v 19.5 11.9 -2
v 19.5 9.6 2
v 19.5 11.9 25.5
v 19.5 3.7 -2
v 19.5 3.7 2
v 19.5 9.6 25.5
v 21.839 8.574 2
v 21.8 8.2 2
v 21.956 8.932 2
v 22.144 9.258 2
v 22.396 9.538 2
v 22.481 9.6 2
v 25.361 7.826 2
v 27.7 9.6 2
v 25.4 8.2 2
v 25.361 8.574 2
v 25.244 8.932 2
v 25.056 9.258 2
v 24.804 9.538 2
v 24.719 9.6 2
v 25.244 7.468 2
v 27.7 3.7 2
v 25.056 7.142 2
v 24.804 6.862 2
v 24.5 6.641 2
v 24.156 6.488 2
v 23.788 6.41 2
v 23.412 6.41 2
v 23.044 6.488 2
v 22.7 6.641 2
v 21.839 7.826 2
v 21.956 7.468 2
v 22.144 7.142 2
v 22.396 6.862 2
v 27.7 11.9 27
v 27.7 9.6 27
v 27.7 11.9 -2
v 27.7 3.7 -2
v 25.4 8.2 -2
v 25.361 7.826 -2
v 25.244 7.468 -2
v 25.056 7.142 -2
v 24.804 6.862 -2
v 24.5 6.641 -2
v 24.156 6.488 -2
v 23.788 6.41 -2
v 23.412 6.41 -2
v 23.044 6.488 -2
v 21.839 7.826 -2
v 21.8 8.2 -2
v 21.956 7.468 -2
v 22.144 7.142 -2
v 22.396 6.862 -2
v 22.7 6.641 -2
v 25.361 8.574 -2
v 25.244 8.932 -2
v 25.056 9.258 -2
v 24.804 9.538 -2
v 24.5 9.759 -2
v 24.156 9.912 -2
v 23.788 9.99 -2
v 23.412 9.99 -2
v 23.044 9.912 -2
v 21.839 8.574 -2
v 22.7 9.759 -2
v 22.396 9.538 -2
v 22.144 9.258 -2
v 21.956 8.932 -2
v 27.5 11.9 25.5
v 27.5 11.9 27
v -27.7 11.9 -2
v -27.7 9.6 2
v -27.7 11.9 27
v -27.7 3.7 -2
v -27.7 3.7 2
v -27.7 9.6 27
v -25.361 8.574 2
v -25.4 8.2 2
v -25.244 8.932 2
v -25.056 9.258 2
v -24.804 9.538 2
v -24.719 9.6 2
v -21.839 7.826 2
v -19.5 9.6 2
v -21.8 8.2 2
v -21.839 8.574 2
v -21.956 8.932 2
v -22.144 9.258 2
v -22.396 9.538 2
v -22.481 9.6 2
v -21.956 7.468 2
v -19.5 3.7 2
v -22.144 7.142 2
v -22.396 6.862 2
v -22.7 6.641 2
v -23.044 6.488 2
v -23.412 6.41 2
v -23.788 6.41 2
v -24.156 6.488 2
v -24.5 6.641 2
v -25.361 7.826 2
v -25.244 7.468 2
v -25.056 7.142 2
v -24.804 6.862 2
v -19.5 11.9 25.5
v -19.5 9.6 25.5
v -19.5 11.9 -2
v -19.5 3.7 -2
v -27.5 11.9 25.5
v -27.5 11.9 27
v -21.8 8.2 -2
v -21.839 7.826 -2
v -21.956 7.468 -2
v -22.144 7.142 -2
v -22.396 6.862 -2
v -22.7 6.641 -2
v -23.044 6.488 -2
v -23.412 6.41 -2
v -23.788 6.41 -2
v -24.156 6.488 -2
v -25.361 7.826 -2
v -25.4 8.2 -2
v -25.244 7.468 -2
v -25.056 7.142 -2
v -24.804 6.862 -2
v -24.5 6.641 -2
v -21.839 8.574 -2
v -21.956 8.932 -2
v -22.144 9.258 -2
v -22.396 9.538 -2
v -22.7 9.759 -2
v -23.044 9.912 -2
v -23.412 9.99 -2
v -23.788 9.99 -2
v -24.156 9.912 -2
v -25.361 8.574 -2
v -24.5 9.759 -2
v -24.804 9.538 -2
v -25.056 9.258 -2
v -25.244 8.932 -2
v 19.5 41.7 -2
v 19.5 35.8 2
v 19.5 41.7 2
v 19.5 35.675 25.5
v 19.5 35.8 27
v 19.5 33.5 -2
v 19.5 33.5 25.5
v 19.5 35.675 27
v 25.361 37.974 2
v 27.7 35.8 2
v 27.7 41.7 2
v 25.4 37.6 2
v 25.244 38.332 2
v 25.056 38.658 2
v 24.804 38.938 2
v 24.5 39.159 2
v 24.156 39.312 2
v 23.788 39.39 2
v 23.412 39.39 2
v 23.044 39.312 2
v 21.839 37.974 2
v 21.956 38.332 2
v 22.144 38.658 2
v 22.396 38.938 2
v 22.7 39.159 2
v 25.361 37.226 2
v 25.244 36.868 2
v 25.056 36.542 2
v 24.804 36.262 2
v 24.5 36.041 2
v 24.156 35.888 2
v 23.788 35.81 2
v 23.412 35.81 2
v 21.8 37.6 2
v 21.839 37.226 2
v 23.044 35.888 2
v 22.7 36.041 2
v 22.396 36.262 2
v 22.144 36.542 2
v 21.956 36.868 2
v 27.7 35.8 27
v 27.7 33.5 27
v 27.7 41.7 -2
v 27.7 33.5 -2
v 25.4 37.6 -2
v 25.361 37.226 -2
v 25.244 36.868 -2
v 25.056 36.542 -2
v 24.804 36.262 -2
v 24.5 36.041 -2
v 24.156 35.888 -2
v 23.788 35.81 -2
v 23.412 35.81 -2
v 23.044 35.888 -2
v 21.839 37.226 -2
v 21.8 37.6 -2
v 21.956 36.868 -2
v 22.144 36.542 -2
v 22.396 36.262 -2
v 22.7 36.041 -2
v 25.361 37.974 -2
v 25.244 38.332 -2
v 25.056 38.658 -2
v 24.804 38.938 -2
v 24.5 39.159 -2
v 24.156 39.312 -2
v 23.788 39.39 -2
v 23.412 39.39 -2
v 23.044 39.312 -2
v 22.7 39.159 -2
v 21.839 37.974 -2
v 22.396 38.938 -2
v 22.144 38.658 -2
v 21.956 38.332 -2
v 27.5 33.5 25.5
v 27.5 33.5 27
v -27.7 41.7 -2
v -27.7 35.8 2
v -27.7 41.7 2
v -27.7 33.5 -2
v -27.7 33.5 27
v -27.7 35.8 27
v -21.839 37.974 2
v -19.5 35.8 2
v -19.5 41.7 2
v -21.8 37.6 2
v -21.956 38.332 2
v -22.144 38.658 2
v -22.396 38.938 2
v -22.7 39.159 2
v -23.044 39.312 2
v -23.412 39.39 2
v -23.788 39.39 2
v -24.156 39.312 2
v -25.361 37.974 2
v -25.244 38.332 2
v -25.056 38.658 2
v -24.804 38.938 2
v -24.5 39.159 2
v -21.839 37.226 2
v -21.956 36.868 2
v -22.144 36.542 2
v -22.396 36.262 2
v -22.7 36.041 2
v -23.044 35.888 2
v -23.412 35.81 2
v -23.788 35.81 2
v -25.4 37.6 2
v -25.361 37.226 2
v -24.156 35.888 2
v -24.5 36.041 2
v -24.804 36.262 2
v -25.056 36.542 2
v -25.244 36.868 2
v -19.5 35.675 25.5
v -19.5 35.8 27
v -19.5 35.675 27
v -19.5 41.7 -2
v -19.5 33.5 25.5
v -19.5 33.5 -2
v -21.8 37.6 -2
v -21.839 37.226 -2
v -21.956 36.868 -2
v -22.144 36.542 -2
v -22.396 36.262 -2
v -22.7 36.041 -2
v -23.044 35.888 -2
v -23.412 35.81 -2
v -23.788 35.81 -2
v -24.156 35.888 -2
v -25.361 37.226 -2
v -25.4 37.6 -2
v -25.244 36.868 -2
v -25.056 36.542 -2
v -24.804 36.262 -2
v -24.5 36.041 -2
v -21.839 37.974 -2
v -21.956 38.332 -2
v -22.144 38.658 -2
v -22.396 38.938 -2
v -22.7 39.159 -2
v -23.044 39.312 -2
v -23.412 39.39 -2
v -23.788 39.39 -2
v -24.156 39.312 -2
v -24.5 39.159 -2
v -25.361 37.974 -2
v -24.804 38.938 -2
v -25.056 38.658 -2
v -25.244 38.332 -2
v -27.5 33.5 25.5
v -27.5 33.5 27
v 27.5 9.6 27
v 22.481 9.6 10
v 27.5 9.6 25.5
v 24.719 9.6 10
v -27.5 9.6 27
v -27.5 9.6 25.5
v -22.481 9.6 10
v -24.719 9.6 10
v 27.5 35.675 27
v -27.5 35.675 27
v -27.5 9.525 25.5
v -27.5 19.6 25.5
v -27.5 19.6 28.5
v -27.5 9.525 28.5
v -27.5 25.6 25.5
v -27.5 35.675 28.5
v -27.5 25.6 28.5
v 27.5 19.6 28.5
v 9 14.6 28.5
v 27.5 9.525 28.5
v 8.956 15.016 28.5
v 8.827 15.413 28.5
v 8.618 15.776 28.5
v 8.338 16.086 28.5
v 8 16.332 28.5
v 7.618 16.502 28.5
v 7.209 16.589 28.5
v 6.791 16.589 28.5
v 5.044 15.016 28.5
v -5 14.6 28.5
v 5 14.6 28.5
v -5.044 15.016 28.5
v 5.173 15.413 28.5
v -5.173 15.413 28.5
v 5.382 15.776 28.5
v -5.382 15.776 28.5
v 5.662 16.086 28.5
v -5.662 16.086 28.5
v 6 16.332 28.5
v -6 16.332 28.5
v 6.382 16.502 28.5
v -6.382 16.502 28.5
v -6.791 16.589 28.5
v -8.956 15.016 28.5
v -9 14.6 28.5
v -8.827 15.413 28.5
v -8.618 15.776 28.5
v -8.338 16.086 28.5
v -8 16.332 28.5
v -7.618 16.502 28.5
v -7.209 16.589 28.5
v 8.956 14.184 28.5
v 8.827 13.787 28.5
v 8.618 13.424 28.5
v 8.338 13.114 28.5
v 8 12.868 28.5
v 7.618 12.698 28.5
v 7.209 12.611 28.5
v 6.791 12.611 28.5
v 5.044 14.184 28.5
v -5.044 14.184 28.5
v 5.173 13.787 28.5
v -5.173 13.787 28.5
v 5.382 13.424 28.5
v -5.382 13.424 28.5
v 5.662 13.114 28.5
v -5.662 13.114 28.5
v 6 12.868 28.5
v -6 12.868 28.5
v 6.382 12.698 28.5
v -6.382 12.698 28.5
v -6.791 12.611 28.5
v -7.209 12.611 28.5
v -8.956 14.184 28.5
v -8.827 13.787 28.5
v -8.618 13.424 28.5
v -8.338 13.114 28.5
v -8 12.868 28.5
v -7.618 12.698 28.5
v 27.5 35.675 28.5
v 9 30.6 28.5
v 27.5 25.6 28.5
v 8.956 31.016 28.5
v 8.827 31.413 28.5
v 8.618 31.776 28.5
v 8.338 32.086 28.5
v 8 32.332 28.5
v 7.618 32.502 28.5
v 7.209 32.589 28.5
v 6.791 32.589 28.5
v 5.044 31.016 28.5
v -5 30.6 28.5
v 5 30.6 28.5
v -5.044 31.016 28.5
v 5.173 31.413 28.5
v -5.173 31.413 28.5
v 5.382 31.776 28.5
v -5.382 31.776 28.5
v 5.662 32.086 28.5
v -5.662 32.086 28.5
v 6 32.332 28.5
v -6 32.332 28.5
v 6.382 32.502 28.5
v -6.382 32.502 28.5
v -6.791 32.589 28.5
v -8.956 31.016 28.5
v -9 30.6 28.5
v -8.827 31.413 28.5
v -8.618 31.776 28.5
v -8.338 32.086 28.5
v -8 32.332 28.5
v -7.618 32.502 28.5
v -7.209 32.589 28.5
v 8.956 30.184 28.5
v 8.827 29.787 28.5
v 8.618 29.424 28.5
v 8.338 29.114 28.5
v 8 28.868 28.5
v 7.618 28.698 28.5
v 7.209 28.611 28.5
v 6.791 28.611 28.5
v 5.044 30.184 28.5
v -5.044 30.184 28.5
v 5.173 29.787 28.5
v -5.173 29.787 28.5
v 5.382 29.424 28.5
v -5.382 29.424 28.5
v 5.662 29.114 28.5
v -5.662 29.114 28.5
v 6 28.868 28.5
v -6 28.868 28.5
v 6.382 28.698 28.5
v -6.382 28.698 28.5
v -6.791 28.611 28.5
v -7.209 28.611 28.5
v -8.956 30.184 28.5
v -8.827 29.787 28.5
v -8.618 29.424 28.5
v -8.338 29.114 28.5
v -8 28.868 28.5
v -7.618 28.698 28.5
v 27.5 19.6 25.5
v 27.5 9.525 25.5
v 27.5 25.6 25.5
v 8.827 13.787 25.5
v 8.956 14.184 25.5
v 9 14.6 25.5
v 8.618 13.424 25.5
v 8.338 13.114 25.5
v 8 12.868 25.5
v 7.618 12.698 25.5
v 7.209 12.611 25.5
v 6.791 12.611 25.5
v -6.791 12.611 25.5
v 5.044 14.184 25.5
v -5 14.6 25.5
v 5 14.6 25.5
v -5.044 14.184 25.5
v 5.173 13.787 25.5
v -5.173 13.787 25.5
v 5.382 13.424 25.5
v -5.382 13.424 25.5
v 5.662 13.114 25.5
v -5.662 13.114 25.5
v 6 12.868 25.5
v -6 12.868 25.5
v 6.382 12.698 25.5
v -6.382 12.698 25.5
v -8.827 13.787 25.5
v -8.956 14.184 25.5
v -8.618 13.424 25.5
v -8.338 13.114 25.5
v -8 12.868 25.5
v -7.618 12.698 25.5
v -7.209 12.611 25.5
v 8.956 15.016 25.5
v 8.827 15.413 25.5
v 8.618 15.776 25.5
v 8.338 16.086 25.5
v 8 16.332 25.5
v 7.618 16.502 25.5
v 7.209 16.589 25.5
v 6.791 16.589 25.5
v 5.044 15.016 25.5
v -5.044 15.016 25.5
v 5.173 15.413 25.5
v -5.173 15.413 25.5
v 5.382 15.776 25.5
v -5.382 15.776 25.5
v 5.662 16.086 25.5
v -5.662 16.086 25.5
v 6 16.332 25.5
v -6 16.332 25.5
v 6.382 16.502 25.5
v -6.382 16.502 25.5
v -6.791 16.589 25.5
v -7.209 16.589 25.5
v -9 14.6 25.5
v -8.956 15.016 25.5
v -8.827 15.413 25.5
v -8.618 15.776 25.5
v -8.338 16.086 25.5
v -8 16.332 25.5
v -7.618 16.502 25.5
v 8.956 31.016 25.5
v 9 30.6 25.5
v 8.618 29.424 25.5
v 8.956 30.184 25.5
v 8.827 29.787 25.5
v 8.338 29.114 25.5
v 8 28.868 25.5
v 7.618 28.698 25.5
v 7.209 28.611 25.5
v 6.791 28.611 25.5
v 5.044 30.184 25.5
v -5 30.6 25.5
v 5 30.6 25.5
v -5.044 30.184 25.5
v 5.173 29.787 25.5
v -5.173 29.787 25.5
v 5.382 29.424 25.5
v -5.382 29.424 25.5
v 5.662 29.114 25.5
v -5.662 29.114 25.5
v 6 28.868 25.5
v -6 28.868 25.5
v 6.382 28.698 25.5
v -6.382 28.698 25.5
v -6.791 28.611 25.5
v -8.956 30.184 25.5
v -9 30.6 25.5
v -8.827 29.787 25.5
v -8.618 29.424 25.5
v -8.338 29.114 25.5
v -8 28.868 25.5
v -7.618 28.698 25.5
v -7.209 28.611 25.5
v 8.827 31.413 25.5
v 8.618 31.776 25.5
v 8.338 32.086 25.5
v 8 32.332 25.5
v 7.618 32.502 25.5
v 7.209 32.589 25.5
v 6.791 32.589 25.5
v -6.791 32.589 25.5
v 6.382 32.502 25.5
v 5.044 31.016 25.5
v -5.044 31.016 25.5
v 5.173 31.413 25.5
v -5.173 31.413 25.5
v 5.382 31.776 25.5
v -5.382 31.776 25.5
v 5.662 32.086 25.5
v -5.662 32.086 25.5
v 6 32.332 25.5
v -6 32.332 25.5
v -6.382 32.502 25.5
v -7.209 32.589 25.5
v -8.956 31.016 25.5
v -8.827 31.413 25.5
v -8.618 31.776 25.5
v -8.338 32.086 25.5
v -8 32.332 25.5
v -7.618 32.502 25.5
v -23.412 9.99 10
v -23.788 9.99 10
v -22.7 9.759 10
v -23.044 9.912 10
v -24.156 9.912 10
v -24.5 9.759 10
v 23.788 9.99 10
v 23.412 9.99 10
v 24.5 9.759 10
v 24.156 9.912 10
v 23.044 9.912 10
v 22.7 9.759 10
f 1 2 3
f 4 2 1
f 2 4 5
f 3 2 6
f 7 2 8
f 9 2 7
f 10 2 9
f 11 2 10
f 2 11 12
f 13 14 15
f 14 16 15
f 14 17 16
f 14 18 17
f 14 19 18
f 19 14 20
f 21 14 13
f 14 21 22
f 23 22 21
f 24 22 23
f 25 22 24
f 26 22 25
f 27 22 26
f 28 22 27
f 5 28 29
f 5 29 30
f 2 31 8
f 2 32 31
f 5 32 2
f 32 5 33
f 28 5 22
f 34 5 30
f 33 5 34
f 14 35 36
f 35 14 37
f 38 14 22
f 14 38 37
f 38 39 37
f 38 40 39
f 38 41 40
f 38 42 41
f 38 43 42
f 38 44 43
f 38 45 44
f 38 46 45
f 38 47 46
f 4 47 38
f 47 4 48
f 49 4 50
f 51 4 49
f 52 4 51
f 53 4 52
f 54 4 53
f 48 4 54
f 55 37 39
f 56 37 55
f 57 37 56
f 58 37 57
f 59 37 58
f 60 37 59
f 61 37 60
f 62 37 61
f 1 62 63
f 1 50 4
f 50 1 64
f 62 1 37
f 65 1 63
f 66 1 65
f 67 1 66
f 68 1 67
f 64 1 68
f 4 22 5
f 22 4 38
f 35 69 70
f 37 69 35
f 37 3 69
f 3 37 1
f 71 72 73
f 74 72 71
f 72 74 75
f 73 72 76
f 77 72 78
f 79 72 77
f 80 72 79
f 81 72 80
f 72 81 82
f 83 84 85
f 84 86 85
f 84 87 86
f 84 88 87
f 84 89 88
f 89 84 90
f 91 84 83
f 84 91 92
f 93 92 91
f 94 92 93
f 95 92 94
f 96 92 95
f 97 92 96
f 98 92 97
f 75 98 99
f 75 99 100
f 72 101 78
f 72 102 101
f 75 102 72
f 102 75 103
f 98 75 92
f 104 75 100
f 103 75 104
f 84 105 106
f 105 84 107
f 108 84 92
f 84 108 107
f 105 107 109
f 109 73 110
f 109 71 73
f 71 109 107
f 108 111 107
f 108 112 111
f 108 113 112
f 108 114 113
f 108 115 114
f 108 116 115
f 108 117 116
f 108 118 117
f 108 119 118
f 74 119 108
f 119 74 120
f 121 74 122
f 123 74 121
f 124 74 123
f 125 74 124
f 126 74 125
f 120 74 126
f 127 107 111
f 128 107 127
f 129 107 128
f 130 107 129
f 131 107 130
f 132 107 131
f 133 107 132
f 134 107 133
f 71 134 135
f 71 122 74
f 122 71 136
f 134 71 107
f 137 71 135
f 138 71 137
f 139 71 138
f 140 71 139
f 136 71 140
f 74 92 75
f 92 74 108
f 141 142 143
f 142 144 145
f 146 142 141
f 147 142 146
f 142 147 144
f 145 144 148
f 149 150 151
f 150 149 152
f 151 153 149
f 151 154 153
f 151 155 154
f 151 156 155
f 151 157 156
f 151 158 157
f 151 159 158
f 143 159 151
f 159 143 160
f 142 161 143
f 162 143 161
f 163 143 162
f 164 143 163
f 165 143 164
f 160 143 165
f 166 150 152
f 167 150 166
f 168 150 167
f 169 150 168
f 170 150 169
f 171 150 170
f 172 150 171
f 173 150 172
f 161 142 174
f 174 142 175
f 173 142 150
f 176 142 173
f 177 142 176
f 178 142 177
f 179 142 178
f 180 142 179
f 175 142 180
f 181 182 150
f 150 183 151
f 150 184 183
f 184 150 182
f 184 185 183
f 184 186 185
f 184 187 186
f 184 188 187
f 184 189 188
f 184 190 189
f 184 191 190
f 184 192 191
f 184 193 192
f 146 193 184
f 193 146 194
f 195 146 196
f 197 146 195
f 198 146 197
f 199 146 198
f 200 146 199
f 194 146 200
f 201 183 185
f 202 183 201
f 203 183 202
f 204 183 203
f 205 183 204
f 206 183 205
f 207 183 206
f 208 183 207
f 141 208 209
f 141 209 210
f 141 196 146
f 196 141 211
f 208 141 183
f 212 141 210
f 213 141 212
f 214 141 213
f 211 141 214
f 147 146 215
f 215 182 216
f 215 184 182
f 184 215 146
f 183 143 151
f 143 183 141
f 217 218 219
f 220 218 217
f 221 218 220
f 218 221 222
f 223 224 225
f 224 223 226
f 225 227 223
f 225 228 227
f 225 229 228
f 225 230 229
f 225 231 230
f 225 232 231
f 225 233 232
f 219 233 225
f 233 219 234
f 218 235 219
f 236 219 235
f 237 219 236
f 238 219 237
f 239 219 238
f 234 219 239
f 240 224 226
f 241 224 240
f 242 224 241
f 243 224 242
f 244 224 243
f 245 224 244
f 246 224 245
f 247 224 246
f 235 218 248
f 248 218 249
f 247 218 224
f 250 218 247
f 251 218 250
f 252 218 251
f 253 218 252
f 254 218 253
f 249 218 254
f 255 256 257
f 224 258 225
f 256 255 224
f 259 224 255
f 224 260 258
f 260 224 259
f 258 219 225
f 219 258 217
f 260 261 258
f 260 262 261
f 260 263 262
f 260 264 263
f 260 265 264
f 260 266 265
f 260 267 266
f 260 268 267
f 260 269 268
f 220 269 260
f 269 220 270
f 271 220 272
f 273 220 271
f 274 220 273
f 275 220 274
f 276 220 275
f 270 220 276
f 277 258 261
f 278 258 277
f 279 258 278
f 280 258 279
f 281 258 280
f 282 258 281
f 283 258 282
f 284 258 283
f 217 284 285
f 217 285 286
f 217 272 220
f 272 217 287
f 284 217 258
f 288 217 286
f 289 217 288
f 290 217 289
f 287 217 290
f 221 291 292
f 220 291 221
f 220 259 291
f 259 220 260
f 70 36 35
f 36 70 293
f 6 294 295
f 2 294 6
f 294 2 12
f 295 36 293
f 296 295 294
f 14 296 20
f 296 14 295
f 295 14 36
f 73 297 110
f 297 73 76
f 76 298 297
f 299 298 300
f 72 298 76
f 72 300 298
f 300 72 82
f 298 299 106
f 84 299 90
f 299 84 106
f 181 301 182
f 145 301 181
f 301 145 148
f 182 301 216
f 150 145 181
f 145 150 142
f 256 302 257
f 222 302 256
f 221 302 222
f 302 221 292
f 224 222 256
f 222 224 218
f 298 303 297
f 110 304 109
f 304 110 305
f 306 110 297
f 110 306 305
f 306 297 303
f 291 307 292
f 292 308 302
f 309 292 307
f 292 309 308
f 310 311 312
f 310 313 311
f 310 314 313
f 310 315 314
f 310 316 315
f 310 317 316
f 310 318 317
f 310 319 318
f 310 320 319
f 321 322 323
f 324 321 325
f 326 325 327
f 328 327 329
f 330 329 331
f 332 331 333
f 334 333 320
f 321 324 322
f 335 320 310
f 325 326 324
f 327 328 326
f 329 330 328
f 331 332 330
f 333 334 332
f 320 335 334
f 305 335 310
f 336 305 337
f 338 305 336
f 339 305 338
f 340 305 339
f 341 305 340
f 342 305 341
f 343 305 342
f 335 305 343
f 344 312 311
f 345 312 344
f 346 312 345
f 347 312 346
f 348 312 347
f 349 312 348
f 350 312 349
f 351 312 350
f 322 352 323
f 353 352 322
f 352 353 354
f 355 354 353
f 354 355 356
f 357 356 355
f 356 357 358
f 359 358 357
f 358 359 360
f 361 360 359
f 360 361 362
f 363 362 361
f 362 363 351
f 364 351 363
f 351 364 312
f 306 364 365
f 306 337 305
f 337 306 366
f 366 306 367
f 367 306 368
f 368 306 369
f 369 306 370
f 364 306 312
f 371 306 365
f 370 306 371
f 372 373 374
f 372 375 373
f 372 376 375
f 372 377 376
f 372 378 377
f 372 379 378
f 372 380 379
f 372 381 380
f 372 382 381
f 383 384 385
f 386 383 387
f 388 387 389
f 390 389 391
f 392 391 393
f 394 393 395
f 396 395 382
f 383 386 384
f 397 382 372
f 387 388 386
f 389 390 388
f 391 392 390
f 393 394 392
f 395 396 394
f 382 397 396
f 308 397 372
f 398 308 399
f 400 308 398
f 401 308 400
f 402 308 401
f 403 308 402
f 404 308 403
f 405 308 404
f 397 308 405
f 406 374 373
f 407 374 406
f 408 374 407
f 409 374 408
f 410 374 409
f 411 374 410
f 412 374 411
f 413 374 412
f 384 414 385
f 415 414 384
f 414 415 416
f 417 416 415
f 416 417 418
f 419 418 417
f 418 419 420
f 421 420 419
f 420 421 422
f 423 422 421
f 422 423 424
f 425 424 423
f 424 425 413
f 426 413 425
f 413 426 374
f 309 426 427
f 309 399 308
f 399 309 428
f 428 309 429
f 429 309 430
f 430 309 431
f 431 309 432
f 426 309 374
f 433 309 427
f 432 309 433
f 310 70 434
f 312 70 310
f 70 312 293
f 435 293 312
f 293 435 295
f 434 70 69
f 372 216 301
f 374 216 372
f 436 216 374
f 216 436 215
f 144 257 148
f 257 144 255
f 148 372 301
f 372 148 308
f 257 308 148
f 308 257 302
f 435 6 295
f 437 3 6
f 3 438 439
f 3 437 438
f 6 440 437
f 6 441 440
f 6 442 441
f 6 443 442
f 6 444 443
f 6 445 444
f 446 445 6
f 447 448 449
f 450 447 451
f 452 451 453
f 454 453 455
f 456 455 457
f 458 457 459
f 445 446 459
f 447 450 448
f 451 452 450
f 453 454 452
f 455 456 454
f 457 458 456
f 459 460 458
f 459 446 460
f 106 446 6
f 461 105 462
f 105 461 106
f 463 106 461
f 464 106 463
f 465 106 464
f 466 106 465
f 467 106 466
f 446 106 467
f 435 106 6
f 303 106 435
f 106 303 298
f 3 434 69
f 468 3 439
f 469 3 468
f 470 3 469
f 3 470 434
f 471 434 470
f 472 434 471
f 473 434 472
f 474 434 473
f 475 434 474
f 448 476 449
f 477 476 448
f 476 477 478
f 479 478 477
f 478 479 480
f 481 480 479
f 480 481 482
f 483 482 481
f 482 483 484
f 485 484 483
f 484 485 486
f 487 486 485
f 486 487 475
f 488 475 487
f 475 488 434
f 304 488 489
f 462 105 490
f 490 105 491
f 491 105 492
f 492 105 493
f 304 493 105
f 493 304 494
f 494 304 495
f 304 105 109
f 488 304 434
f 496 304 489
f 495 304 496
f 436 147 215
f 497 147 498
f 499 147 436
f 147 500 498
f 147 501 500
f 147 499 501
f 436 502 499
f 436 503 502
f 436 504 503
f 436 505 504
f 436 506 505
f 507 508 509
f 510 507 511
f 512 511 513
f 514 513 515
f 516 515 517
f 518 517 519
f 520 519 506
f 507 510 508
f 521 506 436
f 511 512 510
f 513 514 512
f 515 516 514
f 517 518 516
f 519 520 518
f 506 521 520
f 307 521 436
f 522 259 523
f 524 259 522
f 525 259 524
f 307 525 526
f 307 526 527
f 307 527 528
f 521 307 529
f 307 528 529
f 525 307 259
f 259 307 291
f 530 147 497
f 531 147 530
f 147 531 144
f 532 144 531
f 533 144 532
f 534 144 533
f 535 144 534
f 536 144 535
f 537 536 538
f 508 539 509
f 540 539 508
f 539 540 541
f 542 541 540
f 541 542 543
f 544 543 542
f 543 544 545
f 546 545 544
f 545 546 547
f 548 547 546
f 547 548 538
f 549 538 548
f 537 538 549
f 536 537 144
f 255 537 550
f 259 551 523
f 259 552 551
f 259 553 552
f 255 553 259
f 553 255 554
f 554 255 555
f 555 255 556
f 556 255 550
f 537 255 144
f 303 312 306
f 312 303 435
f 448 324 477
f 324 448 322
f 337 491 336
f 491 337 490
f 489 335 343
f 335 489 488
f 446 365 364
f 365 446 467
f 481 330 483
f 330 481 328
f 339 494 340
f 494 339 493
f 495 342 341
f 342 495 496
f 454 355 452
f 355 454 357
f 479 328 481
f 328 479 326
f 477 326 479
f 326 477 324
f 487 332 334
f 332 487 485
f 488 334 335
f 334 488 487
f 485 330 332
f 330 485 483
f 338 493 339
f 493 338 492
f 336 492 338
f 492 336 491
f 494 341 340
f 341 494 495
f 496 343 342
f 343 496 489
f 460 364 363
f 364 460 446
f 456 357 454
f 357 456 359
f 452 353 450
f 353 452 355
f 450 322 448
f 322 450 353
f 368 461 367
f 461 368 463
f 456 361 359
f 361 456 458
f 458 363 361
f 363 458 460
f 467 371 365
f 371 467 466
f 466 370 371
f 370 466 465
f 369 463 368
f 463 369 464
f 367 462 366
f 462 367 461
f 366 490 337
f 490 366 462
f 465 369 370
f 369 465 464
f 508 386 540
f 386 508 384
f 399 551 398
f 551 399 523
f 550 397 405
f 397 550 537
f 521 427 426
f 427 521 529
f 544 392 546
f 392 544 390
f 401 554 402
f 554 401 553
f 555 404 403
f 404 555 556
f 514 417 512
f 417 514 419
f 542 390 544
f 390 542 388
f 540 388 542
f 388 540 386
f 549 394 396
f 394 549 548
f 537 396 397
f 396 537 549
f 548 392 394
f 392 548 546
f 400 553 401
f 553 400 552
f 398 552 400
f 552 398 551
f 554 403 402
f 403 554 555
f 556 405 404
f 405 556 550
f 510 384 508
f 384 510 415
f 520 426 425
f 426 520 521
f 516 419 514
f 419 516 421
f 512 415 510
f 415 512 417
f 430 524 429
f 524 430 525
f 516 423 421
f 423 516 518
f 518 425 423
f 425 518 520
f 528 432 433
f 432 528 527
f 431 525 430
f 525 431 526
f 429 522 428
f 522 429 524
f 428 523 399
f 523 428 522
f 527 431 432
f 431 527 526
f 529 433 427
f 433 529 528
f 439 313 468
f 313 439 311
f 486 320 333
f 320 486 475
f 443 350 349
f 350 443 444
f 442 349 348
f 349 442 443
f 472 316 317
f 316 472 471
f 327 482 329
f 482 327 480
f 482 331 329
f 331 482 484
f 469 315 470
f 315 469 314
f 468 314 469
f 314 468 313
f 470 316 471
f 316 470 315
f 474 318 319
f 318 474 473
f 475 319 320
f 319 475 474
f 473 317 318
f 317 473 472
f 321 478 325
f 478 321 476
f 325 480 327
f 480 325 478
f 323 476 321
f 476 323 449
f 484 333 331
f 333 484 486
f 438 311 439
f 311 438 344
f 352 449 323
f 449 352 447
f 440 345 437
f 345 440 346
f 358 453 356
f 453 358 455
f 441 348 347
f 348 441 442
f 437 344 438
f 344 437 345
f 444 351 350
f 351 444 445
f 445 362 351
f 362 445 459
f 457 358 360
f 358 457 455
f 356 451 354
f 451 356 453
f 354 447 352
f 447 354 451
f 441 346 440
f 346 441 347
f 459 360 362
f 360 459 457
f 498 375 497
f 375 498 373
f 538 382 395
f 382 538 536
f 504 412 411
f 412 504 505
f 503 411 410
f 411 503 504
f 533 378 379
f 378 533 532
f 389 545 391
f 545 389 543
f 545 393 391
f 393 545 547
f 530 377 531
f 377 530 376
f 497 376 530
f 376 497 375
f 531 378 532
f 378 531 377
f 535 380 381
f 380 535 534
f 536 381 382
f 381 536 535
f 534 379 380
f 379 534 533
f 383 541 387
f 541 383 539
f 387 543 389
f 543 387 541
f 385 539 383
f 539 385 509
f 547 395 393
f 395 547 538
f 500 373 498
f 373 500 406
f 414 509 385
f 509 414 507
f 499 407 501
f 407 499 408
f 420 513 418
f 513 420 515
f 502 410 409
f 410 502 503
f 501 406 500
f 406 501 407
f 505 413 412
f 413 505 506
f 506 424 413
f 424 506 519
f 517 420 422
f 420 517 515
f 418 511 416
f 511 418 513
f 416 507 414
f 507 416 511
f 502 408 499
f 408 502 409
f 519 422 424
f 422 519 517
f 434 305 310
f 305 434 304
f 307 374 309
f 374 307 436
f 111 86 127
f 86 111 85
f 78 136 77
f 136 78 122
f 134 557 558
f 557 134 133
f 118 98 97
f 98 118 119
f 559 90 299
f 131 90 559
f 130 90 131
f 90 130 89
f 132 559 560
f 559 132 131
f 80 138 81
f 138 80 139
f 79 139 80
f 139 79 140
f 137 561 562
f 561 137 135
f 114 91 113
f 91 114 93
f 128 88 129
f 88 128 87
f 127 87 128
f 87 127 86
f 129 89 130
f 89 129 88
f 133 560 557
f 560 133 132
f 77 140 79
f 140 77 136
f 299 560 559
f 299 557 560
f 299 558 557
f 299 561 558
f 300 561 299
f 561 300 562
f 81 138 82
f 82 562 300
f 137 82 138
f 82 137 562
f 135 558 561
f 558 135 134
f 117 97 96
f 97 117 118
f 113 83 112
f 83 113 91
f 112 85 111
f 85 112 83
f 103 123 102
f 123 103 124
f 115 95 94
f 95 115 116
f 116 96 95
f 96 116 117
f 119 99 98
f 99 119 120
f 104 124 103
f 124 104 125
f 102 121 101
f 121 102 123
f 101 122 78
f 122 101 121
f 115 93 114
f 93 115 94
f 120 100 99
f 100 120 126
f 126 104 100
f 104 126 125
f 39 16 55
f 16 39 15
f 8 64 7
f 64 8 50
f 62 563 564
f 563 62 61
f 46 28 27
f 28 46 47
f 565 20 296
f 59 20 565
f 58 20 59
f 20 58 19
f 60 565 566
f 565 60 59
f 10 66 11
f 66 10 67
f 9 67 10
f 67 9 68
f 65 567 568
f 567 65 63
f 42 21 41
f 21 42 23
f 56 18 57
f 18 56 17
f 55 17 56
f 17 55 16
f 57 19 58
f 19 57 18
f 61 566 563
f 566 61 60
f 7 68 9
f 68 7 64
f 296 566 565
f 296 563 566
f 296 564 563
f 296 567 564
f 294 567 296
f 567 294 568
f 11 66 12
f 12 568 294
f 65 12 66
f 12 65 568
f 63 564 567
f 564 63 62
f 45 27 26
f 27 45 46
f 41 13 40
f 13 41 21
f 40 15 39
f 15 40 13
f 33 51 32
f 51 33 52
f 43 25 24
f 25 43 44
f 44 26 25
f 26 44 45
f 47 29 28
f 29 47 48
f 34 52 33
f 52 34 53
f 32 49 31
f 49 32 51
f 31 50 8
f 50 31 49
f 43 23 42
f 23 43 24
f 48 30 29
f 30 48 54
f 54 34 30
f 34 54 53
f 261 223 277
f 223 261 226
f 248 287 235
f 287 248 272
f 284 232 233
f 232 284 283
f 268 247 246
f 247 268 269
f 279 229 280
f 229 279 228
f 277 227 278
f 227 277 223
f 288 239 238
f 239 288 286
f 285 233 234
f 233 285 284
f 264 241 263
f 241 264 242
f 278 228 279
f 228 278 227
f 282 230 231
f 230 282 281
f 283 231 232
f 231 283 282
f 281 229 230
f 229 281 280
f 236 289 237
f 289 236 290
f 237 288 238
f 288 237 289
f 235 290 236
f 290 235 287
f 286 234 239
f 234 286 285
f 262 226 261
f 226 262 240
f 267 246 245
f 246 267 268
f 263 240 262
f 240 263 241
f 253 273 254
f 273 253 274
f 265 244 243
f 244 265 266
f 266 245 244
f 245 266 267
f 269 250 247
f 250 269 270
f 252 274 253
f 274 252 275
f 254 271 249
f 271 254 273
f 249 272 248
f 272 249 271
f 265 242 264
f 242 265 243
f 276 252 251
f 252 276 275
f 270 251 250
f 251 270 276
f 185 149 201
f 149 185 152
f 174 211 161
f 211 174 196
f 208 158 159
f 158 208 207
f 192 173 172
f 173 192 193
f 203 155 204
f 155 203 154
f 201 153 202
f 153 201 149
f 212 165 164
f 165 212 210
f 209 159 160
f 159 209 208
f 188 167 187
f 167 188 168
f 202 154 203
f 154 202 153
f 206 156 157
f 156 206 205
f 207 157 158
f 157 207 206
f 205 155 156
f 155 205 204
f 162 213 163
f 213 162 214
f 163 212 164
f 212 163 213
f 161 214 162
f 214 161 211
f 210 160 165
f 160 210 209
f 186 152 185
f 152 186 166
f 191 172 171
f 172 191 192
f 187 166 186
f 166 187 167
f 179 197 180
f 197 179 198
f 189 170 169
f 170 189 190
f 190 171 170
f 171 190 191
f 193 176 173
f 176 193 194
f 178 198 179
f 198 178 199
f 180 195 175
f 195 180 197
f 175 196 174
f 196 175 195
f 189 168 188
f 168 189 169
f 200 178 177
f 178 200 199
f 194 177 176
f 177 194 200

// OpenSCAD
// file: screw_pegs.scad
servo_l = 40.5;
servo_w = 20;
servo_h = 30;//37.5;
wing_h=10;
wing_l=6.74;
wing_offset = 1.75;
tol = 0.2;
wall_t = 5;

screw_hole_d=3.2;//3.87
inter_screws_dist = 6.2;
screws_x_offset = 4;
screws_y_offset = 8;
servos_n = 5;

servo_shaft_d = 5.8;
servo_shaft_l = 3.2;

tube_d = 4;


$fn=30;

module screws_holes(){
    cylinder(d=screw_hole_d+2*tol,h=20,center=true);
    translate([0,inter_screws_dist+screw_hole_d,0]){
        cylinder(d=screw_hole_d+2*tol,h=20,center=true);
        }//end translate
    }//end module

module screw_pegs(){
for (a =[0:servos_n]){
    translate([-(servo_l/2+screw_hole_d/2+wing_offset),a*servo_w+wall_t+screw_hole_d,-servo_h/2+wall_t])
    screws_holes();
    translate([servo_l/2+screw_hole_d/2+wing_offset,a*servo_w+wall_t+screw_hole_d,-servo_h/2+wall_t])
screws_holes();
}//end for


}//end module
// main file
use <screw_pegs.scad>




$fn=30;

servo_l = 40.5;
servo_w = 20;
servo_h = 30;//37.5;
wing_h=10;
wing_l=6.74;
wing_offset = 1.75;
tol = 0.2;
wall_t = 5;

screw_hole_d=3.2;
inter_screws_dist = 6.2;
screws_x_offset = 4;
screws_y_offset = 8;
servos_n = 4;

servo_shaft_d = 5.8;
servo_shaft_l = 3.2;

tube_d = 4;

mountZ=4;
mountX=10;

zipTieDist = 7;
verticalPoleX=screw_hole_d+5;
verticalPoleY=2.3;
verticalPoleZ=27;

valveHolderScrewX = screw_hole_d+5 ;
valveHolderScrewY = screw_hole_d+5;
valveHolderScrewZ = mountZ;
/*
module valve_holder(){
difference(){
cube([30,40,5]);
translate([7.5,-1,-1]){
cube([5,42,7]);
    
}//emnd translate
for (i=[4,15]){
    for (j=[15,25]){
translate([i,j,-5]){
cylinder(d=3,h=25);
    }//end translate
    
}//end for
}//end for
}//end difference

for (i=[-5,4*inter_screws_dist]){
    for (j=[-(servo_l/2+screw_hole_d/2+wing_offset)/2,35]){
    translate([i,j,5]){
    rotate([0,90,0]){
        cube([15,5,5]);
    }//end rotate
}//end translate
}//end for
}//end for


}//end module
*/
module holder(){
difference(){
    union(){
    for (y=[0,4*inter_screws_dist+5,0]){
        for (x = [servo_l/2+screw_hole_d/2+wing_offset,-(servo_l/2+screw_hole_d/2+wing_offset)]){
    

translate([x,y,0]){
cube([valveHolderScrewX,valveHolderScrewY,valveHolderScrewZ],center=true);
    
}//end translate

}//end for
}//end for

for (x=[servo_l/2+screw_hole_d/2+wing_offset,-(servo_l/2+screw_hole_d/2+wing_offset)])
translate([x,valveHolderScrewX/2-verticalPoleY/2,verticalPoleZ/2])
    cube([valveHolderScrewX,verticalPoleY,verticalPoleZ],center=true);

for (x=[servo_l/2+screw_hole_d/2+wing_offset,-(servo_l/2+screw_hole_d/2+wing_offset)])
translate([x,4*inter_screws_dist+5-(valveHolderScrewX/2-verticalPoleY/2),verticalPoleZ/2])
    cube([valveHolderScrewX,verticalPoleY,verticalPoleZ],center=true);



translate([0,25/2+verticalPoleY,verticalPoleZ]){
cube([55,25+verticalPoleY/2,3],center=true);
}//end translate
}//end union


union(){
translate([0,25/2+verticalPoleY,verticalPoleZ]){
    translate([-zipTieDist,-8,-15])
    cylinder(d=4,h=30);
    translate([-zipTieDist,8,-15])
    cylinder(d=4,h=30);
    translate([zipTieDist,-8,-15])
    cylinder(d=4,h=30);
    translate([zipTieDist,8,-15])
    cylinder(d=4,h=30);
    
    cube([screw_hole_d+65,6,10],center=true);
}//end translate

}//end union
}//end difference
}//end module
/*
translate([14,11,0]){
rotate([0,0,90]){
valve_holder();
}
}
*/

difference(){
translate([0,inter_screws_dist+screw_hole_d/2,0])
holder();
translate([0,0,10])
screw_pegs();
}
